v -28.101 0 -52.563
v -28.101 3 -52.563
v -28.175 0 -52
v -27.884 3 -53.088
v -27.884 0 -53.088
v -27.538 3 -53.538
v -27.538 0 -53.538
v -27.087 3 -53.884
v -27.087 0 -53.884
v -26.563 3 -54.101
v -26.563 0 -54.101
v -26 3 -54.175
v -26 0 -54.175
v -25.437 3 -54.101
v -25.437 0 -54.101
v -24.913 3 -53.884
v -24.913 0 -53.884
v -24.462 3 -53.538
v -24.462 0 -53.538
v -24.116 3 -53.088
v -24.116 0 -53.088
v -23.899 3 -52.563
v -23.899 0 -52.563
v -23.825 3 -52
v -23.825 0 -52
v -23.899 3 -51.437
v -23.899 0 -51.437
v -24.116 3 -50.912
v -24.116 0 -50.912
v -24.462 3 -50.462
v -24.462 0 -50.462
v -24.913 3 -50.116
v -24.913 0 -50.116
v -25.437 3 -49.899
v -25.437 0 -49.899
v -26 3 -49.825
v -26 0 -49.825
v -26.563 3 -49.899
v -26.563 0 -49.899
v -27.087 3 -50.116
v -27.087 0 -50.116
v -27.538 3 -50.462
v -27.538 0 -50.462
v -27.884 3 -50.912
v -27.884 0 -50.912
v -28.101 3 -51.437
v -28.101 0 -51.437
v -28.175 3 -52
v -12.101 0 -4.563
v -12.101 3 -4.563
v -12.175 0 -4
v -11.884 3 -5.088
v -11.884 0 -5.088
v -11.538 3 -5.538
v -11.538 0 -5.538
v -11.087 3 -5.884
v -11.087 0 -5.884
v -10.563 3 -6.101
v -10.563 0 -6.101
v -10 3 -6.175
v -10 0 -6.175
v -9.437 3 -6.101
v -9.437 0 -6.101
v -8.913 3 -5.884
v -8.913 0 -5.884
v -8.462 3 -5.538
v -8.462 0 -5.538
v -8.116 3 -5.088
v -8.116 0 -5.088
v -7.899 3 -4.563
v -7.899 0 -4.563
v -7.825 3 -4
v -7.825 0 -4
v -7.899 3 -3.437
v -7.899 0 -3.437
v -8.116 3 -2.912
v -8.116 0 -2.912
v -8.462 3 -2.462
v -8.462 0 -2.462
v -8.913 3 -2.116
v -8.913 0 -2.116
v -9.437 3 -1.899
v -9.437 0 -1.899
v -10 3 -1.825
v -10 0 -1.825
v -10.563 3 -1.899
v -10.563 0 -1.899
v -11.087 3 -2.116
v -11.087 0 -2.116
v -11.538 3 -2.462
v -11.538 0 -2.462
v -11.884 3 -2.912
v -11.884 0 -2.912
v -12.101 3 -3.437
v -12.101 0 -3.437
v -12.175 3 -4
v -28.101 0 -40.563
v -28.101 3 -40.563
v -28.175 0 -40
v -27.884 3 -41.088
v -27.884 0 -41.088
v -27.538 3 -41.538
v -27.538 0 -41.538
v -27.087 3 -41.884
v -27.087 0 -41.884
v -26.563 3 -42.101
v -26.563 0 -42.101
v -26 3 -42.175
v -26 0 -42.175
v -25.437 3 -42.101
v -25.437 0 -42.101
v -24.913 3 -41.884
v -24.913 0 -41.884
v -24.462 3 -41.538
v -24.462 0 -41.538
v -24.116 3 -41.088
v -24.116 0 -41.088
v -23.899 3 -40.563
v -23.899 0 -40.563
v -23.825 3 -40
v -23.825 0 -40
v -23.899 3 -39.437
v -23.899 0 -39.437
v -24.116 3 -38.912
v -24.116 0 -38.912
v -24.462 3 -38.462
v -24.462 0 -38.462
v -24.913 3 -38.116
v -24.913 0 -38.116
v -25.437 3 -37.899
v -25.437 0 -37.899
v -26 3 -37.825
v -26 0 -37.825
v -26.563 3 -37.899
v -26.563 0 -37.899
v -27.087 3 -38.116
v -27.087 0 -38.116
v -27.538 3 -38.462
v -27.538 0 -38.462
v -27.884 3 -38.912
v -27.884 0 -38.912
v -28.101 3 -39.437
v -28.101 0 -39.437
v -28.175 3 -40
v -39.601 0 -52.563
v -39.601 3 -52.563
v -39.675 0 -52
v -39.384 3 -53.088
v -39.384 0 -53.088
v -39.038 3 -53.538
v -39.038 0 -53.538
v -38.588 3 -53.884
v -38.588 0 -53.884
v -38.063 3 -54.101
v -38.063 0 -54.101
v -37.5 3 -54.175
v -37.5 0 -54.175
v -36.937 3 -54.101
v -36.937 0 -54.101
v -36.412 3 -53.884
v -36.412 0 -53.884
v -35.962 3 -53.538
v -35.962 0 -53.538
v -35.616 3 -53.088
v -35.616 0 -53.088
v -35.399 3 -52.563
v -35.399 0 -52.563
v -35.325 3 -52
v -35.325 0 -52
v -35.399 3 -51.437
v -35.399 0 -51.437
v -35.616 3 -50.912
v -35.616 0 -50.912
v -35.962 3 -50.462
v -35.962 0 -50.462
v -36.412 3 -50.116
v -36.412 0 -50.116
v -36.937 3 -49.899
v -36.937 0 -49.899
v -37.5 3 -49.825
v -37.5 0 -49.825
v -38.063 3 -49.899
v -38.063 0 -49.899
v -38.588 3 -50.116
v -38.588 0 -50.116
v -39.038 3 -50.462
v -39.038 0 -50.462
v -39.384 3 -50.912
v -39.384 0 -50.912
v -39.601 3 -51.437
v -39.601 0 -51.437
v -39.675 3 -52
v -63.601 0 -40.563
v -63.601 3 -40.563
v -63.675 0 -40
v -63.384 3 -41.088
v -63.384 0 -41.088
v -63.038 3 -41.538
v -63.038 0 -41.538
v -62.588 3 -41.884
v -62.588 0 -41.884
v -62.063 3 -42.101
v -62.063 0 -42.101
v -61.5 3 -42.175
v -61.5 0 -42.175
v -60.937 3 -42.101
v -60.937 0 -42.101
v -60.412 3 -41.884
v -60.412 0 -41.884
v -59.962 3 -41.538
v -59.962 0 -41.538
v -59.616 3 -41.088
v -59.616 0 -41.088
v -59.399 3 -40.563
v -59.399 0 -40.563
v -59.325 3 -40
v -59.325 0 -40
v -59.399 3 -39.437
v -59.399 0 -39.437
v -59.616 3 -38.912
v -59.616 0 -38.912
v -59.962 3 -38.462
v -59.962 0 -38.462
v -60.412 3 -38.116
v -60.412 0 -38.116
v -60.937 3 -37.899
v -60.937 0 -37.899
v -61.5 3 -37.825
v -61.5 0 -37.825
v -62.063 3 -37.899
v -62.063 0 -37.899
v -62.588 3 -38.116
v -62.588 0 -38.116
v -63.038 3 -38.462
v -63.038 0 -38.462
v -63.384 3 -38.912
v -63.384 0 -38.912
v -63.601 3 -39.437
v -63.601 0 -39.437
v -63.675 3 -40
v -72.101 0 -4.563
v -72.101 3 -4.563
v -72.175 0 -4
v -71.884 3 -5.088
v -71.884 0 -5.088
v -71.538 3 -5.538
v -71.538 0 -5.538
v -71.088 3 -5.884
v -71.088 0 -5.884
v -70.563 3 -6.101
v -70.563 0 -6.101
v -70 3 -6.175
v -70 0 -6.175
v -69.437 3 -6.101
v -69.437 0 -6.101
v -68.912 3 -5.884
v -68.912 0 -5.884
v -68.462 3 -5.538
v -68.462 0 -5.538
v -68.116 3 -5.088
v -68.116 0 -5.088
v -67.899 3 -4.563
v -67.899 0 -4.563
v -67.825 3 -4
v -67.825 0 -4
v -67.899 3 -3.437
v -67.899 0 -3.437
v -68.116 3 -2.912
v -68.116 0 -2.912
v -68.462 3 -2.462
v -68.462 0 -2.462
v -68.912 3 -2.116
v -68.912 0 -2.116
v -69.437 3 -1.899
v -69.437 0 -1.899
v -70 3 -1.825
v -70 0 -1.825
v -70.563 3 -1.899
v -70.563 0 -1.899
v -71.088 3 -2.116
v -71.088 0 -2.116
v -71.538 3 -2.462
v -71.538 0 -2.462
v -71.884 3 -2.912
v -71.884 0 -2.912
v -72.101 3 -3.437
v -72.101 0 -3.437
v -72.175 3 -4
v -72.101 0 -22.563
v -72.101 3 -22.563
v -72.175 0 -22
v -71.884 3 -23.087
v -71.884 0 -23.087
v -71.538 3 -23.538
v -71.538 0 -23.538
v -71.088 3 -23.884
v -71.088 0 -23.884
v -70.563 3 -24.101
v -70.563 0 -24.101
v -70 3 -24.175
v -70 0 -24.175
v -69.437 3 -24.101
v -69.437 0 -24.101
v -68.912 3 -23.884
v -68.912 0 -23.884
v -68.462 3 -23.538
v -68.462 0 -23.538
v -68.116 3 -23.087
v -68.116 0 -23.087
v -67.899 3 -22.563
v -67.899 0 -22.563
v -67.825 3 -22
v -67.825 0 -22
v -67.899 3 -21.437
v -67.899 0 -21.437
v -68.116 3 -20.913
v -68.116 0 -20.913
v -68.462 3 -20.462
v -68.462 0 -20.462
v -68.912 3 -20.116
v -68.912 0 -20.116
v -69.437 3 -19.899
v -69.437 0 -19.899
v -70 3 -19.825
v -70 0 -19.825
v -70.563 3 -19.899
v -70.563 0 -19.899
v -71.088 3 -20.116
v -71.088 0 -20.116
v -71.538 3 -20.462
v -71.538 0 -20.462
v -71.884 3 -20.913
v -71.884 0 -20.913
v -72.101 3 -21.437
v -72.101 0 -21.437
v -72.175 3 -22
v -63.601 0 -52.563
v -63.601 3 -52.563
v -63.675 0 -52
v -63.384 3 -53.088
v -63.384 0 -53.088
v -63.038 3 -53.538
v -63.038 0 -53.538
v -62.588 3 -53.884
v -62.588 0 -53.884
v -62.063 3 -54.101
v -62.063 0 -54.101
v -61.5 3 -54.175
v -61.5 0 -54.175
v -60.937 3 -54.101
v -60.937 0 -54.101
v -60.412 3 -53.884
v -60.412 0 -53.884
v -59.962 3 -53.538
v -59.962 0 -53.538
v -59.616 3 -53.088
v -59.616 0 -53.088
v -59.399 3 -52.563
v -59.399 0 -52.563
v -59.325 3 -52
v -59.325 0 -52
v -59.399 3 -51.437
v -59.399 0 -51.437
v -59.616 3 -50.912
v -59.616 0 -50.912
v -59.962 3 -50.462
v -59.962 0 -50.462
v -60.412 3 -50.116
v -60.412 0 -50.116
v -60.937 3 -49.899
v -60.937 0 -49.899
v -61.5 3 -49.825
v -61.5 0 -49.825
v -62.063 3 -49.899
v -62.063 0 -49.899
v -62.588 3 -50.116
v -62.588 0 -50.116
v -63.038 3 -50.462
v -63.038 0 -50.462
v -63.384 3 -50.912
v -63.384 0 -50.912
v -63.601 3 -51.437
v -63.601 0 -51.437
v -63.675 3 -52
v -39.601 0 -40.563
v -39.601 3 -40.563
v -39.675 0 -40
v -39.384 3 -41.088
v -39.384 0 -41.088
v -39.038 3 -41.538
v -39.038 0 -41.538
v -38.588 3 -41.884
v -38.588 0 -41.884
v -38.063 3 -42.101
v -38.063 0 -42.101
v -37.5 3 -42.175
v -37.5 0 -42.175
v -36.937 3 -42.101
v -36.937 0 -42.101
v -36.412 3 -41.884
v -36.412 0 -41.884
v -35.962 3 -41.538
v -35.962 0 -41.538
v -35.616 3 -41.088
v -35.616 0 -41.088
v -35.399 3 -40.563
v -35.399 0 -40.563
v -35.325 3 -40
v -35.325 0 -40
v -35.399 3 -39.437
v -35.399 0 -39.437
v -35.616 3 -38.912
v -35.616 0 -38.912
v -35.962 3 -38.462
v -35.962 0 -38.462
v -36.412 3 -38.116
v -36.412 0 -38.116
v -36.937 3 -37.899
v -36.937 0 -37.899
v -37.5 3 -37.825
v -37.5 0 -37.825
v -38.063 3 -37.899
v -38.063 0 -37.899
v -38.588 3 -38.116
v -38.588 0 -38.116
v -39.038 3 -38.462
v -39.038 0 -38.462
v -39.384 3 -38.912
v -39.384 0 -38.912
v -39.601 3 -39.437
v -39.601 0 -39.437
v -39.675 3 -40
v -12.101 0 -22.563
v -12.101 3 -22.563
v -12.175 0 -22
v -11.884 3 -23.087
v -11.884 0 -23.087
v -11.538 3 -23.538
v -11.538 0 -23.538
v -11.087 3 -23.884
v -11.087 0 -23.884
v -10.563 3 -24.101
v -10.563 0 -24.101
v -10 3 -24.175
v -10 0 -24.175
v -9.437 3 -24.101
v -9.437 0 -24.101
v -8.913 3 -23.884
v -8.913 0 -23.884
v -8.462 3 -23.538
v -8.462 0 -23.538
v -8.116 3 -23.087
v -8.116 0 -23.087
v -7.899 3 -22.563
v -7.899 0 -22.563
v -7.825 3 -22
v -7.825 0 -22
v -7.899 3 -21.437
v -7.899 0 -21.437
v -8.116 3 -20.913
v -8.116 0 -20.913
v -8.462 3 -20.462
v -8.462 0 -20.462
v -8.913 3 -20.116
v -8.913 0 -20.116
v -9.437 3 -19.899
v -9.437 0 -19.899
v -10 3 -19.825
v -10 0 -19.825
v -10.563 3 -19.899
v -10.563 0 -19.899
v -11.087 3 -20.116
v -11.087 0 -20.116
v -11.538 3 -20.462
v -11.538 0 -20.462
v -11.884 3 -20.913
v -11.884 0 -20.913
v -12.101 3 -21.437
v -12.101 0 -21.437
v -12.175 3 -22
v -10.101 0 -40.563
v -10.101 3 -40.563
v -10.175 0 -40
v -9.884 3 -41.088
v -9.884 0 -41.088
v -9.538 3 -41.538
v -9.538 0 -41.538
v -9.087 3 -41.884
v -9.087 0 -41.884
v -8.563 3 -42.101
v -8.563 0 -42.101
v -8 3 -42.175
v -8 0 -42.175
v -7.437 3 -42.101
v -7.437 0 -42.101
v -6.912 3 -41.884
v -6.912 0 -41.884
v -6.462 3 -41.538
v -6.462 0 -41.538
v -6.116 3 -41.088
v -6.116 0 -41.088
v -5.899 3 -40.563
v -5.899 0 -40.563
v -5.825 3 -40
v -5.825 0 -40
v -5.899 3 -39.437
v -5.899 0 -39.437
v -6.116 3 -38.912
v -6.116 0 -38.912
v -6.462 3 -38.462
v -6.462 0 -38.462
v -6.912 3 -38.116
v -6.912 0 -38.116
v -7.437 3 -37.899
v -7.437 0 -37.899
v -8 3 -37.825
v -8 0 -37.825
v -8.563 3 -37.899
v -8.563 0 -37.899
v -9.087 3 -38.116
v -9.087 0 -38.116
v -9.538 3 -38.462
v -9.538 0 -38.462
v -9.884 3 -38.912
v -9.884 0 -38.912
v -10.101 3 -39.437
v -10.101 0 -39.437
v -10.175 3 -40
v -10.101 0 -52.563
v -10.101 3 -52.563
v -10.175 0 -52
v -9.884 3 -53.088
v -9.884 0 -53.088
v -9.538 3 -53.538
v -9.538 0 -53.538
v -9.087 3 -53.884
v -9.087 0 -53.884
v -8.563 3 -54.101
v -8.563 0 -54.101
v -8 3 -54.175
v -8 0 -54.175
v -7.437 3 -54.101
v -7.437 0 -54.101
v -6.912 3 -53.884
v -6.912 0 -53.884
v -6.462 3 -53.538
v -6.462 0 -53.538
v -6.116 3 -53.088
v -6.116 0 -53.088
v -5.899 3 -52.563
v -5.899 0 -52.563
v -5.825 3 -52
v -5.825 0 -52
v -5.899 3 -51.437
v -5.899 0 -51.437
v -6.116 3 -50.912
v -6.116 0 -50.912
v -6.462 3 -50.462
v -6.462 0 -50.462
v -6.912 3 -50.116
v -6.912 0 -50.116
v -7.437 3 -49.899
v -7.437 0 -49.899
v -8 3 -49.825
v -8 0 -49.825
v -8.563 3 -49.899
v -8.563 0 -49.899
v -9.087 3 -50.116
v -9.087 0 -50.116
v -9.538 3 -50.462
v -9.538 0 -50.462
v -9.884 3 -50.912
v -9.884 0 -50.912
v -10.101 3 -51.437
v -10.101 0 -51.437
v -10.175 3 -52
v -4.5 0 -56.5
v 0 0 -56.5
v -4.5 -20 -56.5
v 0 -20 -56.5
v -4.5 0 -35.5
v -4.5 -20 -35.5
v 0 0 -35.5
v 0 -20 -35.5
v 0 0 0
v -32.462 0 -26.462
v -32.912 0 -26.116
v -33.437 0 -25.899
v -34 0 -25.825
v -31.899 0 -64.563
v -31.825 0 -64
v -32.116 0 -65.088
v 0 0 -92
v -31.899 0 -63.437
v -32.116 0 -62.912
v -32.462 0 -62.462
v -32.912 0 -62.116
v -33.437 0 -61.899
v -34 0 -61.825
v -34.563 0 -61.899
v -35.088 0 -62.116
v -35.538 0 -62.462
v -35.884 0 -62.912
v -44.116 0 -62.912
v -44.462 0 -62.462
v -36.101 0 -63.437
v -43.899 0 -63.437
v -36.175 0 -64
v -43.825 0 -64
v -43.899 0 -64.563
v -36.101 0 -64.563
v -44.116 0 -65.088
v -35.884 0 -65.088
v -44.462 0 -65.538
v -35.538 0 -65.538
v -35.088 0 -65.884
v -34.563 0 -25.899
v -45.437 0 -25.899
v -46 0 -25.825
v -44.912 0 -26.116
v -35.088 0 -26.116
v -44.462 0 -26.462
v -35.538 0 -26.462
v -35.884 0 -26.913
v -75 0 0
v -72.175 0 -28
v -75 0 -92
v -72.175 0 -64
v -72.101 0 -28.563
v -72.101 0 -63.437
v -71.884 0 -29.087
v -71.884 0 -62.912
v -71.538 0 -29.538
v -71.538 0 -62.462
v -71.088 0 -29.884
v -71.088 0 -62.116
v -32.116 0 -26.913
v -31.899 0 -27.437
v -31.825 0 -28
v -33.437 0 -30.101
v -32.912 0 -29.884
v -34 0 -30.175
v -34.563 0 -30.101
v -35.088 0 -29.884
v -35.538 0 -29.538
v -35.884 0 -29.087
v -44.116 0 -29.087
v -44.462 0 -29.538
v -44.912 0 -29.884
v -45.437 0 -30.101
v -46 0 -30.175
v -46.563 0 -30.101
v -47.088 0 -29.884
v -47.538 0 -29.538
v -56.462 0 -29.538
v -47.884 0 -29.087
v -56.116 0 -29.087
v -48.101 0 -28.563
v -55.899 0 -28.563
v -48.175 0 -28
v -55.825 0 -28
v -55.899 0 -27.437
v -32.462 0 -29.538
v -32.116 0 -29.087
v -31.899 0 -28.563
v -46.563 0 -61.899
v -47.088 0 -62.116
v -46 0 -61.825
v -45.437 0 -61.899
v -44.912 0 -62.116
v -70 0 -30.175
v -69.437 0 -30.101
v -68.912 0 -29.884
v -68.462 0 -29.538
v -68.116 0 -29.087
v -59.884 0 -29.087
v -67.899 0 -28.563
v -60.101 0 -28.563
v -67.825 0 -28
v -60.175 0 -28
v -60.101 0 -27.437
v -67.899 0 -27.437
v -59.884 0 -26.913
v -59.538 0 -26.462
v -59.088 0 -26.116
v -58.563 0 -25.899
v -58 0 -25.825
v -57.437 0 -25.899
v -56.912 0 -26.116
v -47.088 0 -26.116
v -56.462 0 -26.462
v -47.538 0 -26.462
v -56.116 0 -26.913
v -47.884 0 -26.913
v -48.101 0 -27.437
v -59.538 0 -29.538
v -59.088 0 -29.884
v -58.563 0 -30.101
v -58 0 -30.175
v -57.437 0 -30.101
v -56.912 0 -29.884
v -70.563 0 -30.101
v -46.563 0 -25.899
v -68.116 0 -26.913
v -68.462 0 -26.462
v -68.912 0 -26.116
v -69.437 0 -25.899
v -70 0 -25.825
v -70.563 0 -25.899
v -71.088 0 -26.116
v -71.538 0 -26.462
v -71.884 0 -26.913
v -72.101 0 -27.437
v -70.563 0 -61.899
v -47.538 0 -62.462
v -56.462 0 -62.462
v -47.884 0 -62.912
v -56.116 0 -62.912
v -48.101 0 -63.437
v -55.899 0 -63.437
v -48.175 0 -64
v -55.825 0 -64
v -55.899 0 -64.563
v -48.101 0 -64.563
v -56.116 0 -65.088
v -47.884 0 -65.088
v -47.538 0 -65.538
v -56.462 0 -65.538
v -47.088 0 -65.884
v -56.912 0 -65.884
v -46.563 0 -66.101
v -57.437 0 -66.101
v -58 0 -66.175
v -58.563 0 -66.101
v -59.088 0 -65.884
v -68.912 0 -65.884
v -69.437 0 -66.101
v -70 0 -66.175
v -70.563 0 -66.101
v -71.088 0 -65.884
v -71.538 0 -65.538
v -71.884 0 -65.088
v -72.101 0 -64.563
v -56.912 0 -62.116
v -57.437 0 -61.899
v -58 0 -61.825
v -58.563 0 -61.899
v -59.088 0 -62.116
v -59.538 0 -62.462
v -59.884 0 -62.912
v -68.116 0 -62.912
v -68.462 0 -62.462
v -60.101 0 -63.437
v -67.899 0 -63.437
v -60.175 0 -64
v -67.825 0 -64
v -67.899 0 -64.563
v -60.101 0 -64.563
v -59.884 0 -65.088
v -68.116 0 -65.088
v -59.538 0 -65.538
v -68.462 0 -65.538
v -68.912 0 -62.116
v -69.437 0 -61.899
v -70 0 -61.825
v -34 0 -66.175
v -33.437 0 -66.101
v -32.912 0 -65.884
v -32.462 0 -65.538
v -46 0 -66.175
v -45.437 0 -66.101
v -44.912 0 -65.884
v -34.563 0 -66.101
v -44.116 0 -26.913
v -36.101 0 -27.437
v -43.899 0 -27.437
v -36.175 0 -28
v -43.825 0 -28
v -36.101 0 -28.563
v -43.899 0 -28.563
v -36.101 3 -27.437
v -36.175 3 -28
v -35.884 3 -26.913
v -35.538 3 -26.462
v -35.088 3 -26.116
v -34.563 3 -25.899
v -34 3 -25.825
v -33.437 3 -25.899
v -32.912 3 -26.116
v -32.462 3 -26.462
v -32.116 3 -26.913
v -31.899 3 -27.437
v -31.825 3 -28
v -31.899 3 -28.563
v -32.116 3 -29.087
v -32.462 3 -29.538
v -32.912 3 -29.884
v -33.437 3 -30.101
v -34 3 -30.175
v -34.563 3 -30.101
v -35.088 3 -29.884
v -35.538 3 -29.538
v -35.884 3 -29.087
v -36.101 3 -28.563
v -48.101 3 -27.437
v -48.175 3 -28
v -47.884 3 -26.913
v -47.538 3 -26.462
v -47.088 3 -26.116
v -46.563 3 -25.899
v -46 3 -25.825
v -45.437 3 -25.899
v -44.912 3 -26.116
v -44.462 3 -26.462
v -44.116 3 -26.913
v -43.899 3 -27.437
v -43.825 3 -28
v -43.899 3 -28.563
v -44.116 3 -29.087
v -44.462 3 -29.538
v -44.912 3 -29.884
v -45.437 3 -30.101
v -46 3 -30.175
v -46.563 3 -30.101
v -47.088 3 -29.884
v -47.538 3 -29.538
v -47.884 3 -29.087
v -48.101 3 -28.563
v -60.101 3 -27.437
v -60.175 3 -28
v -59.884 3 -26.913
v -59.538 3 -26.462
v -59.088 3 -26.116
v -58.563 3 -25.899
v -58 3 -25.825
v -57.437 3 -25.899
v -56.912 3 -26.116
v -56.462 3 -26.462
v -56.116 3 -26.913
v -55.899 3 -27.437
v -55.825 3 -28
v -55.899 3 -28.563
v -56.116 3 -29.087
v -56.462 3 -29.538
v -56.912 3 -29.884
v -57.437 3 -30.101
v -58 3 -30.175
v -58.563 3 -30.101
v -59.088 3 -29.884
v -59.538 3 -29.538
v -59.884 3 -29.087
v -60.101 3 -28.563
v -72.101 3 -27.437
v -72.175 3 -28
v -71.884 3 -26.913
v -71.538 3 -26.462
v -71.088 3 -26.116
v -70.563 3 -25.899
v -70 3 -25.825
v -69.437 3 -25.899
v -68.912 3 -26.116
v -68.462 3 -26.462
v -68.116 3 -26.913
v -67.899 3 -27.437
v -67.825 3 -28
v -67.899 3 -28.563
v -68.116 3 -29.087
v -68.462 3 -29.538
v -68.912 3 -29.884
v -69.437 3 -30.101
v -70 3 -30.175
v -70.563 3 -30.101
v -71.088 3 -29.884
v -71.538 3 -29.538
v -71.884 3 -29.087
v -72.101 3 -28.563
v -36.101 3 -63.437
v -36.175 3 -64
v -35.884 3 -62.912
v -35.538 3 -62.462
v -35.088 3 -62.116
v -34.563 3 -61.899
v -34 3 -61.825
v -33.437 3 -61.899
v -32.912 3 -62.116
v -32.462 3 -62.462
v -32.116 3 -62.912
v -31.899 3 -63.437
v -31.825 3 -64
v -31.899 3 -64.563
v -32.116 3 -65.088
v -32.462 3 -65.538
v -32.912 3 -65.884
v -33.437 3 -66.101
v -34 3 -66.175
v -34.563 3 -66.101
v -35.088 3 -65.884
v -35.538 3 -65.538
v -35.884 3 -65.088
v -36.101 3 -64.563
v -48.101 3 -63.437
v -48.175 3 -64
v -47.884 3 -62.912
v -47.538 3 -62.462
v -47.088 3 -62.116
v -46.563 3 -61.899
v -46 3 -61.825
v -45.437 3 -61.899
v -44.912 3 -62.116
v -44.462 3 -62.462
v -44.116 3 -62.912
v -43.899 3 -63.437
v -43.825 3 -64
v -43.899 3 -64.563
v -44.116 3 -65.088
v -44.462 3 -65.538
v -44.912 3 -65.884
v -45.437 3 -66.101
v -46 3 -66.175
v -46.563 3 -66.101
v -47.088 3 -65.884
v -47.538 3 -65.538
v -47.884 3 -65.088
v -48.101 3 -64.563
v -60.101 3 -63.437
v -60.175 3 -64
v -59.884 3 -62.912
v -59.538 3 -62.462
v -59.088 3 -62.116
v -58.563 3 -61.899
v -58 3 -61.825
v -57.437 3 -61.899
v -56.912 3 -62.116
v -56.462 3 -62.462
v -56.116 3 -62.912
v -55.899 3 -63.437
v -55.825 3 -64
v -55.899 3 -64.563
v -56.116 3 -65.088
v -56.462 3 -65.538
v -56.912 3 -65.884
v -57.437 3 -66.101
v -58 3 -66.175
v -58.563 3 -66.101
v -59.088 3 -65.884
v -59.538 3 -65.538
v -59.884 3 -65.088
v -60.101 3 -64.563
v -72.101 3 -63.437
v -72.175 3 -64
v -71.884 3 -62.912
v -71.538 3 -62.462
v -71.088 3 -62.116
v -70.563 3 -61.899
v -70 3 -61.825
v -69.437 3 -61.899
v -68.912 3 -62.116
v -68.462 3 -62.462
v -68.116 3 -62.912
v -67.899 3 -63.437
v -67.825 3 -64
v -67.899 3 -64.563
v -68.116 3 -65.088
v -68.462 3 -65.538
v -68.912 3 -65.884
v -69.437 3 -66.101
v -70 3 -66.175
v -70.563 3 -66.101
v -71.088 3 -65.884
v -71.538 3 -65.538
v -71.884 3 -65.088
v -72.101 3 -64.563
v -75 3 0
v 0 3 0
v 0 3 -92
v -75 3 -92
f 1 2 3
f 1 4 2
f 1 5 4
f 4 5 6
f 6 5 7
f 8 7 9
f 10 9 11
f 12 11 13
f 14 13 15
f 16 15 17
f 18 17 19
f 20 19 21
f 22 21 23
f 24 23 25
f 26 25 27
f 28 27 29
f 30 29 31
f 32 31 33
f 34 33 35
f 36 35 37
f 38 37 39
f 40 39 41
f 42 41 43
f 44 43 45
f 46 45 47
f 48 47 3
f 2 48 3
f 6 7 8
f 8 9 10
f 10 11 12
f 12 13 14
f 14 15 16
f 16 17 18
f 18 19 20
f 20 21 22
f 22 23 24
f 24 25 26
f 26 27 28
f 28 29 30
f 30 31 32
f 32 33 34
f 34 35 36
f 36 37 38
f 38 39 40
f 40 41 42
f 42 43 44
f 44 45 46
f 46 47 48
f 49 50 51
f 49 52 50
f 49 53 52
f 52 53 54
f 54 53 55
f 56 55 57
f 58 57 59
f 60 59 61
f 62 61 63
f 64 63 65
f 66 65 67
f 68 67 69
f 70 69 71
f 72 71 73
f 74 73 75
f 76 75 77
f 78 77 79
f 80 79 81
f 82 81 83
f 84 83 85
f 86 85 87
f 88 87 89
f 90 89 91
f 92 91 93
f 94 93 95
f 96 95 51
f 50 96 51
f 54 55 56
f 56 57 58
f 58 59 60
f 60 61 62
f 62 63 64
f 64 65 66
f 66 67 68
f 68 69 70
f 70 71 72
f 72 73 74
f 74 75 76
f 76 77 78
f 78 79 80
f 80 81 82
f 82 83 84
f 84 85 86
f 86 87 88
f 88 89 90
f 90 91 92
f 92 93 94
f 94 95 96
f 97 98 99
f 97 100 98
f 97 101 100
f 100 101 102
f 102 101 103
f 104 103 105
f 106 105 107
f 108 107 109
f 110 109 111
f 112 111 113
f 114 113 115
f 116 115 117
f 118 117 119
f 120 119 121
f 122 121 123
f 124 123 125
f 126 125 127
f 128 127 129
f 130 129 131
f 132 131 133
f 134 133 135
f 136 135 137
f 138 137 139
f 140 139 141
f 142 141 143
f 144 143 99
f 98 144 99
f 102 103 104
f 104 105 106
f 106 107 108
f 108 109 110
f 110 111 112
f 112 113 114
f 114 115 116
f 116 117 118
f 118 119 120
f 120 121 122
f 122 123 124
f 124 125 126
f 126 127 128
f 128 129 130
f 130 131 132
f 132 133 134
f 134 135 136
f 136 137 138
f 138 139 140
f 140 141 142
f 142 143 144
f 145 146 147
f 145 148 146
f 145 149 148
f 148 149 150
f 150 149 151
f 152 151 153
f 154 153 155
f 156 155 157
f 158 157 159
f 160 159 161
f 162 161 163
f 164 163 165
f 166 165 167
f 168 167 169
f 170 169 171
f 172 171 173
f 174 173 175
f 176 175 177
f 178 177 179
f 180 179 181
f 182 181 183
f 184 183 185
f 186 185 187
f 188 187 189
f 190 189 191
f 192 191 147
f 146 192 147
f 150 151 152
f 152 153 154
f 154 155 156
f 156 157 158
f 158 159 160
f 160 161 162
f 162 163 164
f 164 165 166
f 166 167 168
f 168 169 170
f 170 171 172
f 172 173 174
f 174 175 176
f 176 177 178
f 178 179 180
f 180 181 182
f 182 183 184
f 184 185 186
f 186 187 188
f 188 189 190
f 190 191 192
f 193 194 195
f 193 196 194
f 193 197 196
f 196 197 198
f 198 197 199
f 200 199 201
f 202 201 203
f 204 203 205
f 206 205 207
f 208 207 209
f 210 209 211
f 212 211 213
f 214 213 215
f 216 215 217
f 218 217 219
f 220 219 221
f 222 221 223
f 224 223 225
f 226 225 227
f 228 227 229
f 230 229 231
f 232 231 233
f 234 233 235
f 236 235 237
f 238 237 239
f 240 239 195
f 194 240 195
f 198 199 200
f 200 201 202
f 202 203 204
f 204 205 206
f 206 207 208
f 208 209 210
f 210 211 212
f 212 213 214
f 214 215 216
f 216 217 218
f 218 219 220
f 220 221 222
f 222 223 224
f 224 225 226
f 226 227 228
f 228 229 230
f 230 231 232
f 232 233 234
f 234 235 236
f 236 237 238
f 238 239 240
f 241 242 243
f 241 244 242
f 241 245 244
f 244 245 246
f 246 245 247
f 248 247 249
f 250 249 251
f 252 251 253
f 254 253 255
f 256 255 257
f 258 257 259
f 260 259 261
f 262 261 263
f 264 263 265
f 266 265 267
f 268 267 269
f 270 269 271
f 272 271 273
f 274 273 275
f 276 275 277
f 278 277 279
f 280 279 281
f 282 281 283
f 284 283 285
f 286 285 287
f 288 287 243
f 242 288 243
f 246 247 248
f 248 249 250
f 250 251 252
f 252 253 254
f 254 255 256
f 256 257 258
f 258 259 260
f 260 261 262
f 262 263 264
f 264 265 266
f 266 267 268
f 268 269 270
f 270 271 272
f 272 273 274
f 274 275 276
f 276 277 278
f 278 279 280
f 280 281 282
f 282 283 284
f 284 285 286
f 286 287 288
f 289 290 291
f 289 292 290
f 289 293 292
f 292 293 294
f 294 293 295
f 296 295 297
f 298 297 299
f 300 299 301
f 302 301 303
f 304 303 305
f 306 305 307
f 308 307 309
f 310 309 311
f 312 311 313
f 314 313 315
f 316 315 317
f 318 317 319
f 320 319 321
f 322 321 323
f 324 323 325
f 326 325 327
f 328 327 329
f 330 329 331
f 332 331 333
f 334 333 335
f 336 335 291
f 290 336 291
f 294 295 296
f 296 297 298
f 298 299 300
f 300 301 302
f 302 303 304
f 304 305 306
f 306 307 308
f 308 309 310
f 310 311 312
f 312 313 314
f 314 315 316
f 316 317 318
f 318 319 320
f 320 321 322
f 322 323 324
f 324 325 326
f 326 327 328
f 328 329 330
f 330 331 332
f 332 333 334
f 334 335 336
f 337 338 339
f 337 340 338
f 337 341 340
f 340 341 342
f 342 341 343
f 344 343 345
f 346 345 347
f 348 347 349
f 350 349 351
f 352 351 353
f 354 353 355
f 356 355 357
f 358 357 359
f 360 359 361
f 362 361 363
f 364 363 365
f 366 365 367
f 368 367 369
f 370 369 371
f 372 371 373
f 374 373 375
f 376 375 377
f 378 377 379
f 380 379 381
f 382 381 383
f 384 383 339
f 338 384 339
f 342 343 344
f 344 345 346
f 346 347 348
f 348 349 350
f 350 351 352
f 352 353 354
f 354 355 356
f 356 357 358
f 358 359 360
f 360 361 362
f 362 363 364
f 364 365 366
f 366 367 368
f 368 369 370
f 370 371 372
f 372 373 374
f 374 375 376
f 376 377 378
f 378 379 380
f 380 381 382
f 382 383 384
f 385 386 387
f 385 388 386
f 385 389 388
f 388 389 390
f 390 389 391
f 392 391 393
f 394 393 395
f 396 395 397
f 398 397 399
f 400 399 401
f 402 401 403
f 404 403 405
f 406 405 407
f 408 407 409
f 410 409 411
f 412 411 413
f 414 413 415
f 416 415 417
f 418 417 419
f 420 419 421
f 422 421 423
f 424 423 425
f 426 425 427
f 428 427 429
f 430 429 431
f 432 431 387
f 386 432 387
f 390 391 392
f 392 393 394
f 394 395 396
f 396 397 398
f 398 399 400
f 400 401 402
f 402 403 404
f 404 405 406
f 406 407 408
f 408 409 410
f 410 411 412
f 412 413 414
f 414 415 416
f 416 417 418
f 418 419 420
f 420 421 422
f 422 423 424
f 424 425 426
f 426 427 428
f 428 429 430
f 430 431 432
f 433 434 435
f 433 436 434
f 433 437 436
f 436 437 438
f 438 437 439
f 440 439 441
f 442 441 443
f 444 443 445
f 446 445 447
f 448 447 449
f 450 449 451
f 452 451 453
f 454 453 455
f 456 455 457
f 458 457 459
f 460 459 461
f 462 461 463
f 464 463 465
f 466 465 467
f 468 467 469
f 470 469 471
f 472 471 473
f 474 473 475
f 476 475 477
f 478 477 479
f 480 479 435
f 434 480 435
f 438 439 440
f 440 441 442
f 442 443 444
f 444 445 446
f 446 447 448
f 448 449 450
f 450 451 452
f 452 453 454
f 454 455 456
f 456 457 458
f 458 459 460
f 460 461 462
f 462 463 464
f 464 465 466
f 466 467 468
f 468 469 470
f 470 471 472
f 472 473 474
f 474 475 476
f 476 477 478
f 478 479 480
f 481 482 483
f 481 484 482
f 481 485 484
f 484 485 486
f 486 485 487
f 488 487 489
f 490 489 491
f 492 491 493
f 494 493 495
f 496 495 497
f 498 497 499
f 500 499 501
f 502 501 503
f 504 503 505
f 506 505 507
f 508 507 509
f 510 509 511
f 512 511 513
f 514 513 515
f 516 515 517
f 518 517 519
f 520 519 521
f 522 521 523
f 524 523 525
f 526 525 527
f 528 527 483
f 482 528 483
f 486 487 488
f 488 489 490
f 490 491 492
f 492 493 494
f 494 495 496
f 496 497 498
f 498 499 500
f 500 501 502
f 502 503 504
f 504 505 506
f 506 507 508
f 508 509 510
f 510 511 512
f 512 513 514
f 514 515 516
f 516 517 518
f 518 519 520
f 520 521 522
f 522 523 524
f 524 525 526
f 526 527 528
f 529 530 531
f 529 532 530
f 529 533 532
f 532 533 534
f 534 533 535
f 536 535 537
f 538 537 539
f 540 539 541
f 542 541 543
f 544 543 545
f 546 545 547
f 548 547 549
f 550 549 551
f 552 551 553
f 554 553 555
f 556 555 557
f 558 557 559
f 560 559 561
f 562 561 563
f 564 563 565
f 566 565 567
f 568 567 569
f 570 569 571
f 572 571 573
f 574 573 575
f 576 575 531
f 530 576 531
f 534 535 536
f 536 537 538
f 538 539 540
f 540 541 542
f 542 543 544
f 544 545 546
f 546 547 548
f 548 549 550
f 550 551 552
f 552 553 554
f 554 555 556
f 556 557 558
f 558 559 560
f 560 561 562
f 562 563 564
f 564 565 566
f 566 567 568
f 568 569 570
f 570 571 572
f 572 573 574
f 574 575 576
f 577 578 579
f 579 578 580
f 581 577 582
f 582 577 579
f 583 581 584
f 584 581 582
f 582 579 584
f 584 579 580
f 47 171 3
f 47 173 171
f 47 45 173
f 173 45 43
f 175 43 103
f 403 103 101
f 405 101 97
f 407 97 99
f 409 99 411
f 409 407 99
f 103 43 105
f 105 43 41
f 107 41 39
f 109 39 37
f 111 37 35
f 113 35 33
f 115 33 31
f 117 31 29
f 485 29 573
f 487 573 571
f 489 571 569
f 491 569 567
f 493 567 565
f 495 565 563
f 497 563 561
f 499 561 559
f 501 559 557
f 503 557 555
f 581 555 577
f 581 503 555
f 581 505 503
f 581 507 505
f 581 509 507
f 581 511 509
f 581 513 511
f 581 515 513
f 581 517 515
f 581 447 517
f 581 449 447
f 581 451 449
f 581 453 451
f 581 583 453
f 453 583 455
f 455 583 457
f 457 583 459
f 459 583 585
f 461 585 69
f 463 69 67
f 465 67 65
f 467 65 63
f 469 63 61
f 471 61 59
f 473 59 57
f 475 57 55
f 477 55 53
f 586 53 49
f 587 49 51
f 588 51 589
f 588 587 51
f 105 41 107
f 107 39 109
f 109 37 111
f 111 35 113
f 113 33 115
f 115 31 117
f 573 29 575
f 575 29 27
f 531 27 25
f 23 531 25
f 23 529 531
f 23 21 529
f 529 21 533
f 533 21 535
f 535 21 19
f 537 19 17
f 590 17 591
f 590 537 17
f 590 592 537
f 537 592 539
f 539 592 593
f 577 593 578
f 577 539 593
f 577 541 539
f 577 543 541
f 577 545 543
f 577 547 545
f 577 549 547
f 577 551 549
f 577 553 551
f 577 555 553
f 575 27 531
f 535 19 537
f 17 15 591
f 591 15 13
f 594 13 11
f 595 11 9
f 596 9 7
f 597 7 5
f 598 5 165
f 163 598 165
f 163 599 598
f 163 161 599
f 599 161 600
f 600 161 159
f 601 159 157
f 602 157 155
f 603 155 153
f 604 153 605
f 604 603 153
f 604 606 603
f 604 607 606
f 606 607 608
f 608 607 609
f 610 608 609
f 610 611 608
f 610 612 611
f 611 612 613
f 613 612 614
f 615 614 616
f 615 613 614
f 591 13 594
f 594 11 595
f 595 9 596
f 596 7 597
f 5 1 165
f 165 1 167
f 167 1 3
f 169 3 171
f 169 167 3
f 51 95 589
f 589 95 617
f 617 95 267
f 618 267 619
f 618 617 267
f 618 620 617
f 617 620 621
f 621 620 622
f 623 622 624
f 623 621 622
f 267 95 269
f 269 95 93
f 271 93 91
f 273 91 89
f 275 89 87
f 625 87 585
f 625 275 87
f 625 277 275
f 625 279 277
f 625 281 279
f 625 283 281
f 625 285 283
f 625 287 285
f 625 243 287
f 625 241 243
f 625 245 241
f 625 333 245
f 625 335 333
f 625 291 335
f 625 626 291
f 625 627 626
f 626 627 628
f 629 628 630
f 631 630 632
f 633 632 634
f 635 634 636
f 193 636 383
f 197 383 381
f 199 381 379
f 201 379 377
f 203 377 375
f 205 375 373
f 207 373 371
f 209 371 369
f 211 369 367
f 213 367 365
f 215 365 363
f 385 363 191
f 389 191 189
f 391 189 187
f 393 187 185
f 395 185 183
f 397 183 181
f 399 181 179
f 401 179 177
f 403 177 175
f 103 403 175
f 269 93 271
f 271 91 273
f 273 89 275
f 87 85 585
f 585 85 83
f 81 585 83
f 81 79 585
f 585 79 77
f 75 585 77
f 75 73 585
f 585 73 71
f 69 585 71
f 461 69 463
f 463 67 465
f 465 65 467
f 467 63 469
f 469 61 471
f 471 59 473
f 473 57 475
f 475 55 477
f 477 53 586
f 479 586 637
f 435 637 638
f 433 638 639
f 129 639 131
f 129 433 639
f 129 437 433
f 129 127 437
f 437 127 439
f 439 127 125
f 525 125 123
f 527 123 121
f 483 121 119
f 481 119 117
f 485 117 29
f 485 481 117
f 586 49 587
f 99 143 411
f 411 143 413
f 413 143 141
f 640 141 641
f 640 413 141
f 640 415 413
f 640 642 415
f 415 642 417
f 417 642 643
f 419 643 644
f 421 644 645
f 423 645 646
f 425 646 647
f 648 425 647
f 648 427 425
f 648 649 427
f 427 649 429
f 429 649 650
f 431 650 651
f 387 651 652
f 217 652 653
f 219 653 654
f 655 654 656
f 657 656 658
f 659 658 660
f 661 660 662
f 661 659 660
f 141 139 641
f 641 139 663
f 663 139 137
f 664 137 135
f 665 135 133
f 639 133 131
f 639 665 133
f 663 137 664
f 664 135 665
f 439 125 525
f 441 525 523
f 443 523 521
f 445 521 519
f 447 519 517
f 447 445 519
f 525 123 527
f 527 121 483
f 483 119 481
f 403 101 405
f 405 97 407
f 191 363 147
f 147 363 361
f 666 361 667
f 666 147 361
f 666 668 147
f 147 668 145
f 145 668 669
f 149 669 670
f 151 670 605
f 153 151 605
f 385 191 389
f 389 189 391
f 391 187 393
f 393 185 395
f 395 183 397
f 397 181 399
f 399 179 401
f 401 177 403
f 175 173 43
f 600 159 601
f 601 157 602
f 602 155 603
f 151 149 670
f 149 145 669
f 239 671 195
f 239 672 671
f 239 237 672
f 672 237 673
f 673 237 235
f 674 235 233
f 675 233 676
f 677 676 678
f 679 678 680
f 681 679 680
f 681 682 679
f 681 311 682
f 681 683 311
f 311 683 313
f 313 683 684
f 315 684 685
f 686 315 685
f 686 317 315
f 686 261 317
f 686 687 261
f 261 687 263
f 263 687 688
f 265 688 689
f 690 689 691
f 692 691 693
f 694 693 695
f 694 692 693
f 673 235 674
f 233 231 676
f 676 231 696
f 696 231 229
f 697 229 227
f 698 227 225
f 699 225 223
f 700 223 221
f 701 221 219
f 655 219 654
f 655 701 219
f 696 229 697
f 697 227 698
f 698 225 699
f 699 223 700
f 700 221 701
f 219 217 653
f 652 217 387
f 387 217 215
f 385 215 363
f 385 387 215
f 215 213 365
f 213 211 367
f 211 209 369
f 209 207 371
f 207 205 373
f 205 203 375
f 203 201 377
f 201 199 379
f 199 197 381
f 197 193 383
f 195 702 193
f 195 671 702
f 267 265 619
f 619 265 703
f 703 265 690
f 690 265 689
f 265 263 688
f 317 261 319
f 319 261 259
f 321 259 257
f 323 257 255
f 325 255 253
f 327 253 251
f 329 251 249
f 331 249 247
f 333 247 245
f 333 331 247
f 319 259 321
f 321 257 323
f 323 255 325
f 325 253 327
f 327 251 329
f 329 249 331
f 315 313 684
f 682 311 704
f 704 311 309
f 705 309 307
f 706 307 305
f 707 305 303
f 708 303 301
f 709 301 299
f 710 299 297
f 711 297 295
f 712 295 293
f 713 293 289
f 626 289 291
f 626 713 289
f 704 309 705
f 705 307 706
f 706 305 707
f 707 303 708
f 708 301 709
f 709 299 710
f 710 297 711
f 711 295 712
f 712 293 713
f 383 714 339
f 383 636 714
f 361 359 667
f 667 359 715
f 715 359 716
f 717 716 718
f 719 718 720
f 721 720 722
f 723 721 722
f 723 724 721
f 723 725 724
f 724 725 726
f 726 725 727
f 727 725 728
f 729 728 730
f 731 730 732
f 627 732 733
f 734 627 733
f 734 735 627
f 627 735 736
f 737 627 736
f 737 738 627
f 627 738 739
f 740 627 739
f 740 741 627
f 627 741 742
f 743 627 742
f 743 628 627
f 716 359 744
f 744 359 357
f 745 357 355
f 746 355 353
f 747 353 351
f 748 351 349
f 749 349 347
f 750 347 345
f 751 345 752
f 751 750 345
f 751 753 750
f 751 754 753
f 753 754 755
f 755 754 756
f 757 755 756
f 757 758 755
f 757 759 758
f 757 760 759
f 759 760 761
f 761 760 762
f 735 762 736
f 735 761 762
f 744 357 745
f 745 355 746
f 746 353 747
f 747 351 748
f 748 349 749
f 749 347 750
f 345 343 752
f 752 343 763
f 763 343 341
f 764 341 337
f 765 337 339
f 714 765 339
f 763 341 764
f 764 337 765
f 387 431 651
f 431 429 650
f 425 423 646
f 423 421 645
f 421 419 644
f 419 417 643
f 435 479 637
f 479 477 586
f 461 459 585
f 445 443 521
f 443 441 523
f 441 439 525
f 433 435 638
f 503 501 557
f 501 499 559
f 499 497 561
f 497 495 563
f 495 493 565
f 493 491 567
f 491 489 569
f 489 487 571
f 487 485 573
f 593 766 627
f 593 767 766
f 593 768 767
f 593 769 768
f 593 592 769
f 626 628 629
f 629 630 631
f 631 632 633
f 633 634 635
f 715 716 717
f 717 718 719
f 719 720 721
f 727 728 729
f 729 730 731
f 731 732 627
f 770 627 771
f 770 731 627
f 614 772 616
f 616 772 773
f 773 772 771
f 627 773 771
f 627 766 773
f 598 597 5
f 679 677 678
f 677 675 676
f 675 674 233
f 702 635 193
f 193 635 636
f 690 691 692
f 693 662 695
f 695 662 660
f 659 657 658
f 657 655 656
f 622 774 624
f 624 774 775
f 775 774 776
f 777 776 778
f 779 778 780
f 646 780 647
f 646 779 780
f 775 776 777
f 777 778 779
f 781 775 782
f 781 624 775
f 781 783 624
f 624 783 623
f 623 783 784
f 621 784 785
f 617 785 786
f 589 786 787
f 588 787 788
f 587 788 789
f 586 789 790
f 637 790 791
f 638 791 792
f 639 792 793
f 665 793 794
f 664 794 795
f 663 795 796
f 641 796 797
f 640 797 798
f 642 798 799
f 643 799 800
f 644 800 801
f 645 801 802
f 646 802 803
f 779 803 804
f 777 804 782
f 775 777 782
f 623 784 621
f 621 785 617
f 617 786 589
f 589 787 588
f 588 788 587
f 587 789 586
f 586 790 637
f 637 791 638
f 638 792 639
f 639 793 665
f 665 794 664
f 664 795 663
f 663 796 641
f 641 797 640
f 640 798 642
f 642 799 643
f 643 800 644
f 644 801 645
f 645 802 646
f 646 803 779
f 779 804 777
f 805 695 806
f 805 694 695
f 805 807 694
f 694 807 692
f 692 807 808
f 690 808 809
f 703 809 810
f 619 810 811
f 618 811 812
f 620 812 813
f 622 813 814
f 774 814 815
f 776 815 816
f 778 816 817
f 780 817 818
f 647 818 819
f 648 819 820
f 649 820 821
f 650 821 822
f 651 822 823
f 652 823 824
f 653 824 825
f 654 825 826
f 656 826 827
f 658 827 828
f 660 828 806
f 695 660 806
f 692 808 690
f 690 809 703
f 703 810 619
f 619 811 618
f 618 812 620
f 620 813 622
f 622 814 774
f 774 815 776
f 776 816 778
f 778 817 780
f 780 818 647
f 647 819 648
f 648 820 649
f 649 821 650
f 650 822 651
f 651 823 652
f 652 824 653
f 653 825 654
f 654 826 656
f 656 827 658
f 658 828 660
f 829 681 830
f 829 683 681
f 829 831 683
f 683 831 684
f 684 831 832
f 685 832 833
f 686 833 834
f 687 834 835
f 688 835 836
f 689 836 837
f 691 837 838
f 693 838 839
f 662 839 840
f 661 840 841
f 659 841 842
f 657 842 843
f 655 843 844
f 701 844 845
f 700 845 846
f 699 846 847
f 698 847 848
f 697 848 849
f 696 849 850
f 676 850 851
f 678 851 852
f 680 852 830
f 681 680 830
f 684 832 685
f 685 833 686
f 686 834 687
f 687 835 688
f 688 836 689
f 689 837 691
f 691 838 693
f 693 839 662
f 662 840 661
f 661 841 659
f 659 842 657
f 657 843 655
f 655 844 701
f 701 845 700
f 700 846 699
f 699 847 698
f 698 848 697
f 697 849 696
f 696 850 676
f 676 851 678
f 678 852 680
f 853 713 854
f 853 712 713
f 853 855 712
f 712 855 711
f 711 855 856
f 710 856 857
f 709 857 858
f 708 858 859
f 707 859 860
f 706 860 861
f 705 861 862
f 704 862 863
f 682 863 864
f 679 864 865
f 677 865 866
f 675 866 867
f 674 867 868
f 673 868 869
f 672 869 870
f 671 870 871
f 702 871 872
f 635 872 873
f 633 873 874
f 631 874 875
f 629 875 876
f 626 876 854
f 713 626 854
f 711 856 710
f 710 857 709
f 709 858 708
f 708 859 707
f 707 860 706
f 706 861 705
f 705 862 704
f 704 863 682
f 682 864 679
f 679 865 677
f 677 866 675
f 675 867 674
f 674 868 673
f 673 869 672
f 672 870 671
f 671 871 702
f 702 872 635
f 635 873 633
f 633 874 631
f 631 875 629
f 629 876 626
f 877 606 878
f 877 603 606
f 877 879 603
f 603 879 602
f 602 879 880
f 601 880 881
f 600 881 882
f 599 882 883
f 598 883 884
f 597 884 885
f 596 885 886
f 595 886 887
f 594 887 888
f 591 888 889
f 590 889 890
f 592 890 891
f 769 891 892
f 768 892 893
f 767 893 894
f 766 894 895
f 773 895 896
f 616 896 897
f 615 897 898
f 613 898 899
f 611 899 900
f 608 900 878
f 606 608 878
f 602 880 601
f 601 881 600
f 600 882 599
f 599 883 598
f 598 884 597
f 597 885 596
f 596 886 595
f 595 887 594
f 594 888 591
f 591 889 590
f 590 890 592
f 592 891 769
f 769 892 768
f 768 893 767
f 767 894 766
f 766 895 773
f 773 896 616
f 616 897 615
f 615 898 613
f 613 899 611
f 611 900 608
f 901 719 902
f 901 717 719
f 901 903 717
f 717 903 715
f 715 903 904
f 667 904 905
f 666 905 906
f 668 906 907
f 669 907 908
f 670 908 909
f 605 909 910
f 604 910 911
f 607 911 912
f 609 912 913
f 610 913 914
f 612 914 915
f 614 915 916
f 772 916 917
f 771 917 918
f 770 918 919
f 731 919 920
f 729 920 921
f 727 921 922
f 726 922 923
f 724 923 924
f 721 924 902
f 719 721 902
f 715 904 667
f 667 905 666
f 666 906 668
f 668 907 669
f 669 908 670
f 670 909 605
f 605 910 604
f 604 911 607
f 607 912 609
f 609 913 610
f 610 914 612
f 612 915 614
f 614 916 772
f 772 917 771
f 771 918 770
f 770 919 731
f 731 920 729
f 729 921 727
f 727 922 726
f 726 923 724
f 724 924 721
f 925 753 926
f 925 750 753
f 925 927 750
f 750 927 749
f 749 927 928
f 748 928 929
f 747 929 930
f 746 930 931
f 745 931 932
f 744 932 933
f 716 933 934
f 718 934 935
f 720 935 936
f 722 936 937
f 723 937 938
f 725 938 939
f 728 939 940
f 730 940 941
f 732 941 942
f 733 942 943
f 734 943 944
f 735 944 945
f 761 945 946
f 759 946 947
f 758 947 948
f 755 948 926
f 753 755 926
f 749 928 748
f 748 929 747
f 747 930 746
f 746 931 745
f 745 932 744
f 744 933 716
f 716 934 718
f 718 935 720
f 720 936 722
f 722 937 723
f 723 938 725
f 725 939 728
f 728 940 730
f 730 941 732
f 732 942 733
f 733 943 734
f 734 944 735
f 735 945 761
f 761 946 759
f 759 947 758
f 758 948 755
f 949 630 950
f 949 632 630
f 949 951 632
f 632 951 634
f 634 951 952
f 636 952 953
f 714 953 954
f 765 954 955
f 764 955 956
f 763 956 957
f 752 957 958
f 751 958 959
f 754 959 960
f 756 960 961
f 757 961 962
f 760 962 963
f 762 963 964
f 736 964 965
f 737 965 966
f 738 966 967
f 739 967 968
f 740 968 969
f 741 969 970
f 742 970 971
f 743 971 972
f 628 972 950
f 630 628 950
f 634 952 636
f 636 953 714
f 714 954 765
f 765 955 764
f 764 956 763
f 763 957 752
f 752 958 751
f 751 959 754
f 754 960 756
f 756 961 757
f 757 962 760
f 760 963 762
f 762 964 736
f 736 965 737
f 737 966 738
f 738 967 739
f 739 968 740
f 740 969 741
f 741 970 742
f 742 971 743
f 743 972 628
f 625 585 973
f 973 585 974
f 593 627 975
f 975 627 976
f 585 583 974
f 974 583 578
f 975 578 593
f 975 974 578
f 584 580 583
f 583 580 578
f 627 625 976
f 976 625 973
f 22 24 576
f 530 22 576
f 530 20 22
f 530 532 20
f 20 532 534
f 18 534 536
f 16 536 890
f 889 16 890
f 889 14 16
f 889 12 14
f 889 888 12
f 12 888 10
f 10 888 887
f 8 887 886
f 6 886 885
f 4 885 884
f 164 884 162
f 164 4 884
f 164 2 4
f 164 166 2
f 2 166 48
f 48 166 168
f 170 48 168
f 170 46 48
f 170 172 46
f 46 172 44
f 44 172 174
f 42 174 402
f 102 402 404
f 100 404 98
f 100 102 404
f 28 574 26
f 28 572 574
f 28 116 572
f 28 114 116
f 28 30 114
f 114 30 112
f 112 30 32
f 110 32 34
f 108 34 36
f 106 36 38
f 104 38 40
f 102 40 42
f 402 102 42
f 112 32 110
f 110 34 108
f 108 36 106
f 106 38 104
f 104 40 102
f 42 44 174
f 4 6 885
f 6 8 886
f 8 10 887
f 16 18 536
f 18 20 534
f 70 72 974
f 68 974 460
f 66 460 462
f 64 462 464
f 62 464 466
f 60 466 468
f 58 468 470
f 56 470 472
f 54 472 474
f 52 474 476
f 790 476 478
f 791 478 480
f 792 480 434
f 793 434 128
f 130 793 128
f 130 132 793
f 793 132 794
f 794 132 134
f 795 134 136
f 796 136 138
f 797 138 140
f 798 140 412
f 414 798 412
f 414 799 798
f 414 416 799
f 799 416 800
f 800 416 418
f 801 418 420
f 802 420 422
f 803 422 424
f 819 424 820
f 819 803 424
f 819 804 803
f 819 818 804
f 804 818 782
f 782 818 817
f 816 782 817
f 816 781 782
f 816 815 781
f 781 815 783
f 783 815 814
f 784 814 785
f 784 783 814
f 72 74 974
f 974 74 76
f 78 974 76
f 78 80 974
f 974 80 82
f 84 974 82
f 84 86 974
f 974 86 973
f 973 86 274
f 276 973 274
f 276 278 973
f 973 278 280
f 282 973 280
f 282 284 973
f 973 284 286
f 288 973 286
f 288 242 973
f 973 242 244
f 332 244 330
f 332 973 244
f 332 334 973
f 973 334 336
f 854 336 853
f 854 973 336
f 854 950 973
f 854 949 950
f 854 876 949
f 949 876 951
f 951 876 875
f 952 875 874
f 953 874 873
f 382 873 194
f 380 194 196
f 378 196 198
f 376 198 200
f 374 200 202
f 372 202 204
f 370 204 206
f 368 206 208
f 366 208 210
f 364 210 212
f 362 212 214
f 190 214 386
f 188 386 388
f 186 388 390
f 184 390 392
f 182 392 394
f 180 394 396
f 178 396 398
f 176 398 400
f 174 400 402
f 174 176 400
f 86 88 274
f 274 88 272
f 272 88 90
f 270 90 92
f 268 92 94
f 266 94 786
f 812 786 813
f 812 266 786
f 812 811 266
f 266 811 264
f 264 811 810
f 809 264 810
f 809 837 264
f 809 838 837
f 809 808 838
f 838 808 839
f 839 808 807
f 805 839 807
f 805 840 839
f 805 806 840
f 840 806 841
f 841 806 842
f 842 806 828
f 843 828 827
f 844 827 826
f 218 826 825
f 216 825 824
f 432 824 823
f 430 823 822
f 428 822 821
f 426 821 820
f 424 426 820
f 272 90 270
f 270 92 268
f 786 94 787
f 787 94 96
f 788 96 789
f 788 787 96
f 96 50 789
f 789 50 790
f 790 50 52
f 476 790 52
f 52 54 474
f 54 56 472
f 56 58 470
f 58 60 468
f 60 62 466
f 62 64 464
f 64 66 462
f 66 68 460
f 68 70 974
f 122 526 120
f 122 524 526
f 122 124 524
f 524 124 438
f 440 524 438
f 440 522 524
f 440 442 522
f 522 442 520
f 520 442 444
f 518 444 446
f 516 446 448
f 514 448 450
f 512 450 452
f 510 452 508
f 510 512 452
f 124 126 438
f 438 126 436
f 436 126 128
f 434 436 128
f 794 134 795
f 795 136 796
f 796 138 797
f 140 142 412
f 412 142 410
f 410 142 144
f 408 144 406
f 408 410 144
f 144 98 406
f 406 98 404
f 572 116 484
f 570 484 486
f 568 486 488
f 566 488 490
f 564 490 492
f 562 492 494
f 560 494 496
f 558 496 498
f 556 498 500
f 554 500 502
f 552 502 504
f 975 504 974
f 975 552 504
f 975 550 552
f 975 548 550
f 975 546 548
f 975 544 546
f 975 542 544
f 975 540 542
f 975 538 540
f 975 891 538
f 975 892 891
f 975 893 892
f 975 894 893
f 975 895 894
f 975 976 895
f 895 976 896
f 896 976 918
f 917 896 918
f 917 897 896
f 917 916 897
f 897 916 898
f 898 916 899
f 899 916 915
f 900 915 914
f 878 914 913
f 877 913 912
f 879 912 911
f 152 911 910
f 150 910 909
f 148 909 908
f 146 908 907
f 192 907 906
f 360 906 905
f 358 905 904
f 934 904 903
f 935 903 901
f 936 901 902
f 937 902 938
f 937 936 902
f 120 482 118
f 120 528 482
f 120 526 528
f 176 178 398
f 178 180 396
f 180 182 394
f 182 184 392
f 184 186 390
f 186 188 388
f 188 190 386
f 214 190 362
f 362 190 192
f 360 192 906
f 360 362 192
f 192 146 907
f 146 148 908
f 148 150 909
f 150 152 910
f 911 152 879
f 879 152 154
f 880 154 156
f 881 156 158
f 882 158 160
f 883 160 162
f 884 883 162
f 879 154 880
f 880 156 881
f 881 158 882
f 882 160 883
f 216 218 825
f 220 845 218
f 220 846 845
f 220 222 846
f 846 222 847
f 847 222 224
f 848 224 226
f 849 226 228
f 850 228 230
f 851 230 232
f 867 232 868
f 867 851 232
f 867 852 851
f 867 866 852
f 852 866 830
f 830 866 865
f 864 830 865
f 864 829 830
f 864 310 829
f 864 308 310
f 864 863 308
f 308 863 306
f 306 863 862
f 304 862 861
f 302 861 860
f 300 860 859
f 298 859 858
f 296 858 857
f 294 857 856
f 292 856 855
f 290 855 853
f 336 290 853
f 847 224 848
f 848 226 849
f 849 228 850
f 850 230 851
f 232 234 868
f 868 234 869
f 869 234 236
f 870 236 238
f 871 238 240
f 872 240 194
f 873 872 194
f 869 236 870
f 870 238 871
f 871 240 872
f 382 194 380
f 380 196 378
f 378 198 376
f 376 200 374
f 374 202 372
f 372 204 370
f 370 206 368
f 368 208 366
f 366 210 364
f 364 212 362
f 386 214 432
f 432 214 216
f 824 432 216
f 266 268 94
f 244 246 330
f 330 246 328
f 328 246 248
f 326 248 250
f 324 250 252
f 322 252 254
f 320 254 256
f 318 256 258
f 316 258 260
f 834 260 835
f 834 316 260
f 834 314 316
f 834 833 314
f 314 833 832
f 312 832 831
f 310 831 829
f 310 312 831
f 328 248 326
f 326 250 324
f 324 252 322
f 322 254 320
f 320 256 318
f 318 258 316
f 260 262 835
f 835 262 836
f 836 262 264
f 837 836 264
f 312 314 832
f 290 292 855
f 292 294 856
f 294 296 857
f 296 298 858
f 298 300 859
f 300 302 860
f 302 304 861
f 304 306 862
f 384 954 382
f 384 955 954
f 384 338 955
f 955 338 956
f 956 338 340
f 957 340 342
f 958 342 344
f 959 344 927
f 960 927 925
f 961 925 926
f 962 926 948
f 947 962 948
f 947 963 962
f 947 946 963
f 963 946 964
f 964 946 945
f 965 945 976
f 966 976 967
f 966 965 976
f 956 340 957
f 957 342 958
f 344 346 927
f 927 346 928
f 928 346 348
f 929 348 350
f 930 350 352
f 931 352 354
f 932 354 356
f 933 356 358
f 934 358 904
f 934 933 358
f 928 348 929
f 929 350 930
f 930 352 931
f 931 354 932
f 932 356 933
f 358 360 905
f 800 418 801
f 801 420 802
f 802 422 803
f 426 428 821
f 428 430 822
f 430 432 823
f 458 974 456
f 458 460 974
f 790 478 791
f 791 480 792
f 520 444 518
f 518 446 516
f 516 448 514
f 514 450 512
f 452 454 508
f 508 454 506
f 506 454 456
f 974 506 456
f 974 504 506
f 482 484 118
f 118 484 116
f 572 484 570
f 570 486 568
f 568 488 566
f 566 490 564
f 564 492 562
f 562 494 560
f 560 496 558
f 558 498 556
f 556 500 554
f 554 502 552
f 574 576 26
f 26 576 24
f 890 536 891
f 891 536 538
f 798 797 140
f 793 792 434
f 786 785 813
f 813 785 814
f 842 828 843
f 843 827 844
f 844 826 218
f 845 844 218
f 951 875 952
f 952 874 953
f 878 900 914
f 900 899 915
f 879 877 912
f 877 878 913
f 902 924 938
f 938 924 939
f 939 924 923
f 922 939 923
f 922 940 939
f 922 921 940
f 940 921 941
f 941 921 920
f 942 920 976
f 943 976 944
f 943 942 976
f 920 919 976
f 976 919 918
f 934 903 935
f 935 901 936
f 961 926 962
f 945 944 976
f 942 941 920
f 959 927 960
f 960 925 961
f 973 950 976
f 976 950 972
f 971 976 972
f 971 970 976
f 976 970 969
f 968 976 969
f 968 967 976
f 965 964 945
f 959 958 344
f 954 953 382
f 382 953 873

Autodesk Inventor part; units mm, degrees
ref_plane "YZ Plane" through (0, 0, 0) normal (1, 0, 0) x (0, 1, 0)
ref_plane "XZ Plane" through (0, 0, 0) normal (0, 1, 0) x (-1, 0, 0)
ref_plane "XY Plane" through (0, 0, 0) normal (0, 0, 1) x (1, 0, 0)
sketch "Sketch1" plane through (0, 0, 0) normal (0, 1, 0) x (-1, 0, 0)
  line L0 (0, 0) -> (75, 0)
  line L1 (75, 0) -> (75, -92)
  line L2 (75, -92) -> (0, -92)
  line L3 (0, -92) -> (0, 0)
  line L4 (75, -46) -> (0, -46)
  circle A0 centre (70, -64) radius 2.175
  circle A1 centre (70, -28) radius 2.175
  circle A2 centre (58, -28) radius 2.175
  circle A3 centre (58, -64) radius 2.175
  circle A4 centre (46, -28) radius 2.175
  circle A5 centre (46, -64) radius 2.175
  circle A6 centre (34, -28) radius 2.175
  circle A7 centre (34, -64) radius 2.175
  dimension "d0" = 75
  dimension "d1" = 92
  dimension "d6" = 4.35
  dimension "d7" = 18
  dimension "d8" = 4.35
  dimension "d9" = 18
  dimension "d10" = 4.35
  dimension "d11" = 12
  dimension "d12" = 4.35
  dimension "d13" = 4.35
  dimension "d14" = 12
  dimension "d15" = 4.35
  dimension "d16" = 4.35
  dimension "d17" = 12
  dimension "d18" = 4.35
  dimension "d19" = 12
  dimension "d20" = 12
  dimension "d21" = 12
extrude "Extrusion1" add sketch "Sketch1" along normal blind 3
sketch "Sketch3" plane through (0, 0, 0) normal (0, -1, 0) x (1, 0, 0)
  line L0 (0, 0) -> (0, -92) projected
  line L1 (-4.5, -46) -> (-75, -46)
  line L2 (-75, -92) -> (-75, 0) projected
  line L3 (0, -46) -> (0, -56.5)
  line L4 (0, -56.5) -> (-4.5, -56.5)
  line L5 (-4.5, -56.5) -> (-4.5, -35.5)
  line L6 (-4.5, -35.5) -> (0, -35.5)
  line L7 (0, -56.5) -> (0, -35.5)
  dimension "d24" = 10.5
  dimension "d25" = 4.5
  dimension "d26" = 21
extrude "Extrusion2" add sketch "Sketch3" along normal blind 20
sketch "Sketch5" plane through (0, 3, 0) normal (0, 1, 0) x (1, 0, 0)
  line L0 (0, 0) -> (0, 92) projected
  line L1 (0, 46) -> (-74.4781, 46)
  circle A0 centre (-8, 52) radius 2.175
  circle A1 centre (-8, 40) radius 2.175
  circle A2 centre (-26, 40) radius 2.175
  circle A3 centre (-26, 52) radius 2.175
  circle A4 centre (-61.5, 52) radius 2.175
  line L2 (-75, 92) -> (-75, 0) projected
  circle A5 centre (-61.5, 40) radius 2.175
  circle A6 centre (-37.5, 52) radius 2.175
  circle A7 centre (-37.5, 40) radius 2.175
  circle A8 centre (-70, 22) radius 2.175
  circle A9 centre (-70, 4) radius 2.175
  circle A10 centre (-70, 28) radius 2.175 projected
  circle A11 centre (-10, 4) radius 2.175
  circle A12 centre (-10, 22) radius 2.175
  line L3 (-75, 0) -> (0, 0) projected
  line L4 (-37.5, 0) -> (-37.5, 92)
  line L5 (0, 92) -> (-75, 92) projected
  dimension "d29" = 4.35
  dimension "d30" = 6
  dimension "d31" = 8
  dimension "d32" = 4.35
  dimension "d33" = 6
  dimension "d34" = 4.35
  dimension "d35" = 18
  dimension "d36" = 4.35
  dimension "d37" = 4.35
  dimension "d40" = 4.35
  dimension "d42" = 4.35
  dimension "d44" = 4.35
  dimension "d45" = 4.35
  dimension "d46" = 4.35
  dimension "d47" = 18
  dimension "d48" = 6
  dimension "d50" = 6
  dimension "d51" = 6
  dimension "d52" = 6
  dimension "d53" = 12
  dimension "d54" = 4.35
  dimension "d55" = 60
  dimension "d56" = 4.35
  dimension "d64" = 24
  dimension "d65" = 24
hole "Hole1" at (-70, 3, -4) at (-70, 3, -22) at (-61.5, 3, -40) at (-61.5, 3, -52) at (-37.5, 3, -52) at (-37.5, 3, -40) at (-26, 3, -40) at (-10, 3, -22) at (-10, 3, -4) at (-8, 3, -40) at (-26, 3, -52) at (-8, 3, -52) direction (0, -1, 0) diameter 4.35 end through all
properties part number "topChassis"
